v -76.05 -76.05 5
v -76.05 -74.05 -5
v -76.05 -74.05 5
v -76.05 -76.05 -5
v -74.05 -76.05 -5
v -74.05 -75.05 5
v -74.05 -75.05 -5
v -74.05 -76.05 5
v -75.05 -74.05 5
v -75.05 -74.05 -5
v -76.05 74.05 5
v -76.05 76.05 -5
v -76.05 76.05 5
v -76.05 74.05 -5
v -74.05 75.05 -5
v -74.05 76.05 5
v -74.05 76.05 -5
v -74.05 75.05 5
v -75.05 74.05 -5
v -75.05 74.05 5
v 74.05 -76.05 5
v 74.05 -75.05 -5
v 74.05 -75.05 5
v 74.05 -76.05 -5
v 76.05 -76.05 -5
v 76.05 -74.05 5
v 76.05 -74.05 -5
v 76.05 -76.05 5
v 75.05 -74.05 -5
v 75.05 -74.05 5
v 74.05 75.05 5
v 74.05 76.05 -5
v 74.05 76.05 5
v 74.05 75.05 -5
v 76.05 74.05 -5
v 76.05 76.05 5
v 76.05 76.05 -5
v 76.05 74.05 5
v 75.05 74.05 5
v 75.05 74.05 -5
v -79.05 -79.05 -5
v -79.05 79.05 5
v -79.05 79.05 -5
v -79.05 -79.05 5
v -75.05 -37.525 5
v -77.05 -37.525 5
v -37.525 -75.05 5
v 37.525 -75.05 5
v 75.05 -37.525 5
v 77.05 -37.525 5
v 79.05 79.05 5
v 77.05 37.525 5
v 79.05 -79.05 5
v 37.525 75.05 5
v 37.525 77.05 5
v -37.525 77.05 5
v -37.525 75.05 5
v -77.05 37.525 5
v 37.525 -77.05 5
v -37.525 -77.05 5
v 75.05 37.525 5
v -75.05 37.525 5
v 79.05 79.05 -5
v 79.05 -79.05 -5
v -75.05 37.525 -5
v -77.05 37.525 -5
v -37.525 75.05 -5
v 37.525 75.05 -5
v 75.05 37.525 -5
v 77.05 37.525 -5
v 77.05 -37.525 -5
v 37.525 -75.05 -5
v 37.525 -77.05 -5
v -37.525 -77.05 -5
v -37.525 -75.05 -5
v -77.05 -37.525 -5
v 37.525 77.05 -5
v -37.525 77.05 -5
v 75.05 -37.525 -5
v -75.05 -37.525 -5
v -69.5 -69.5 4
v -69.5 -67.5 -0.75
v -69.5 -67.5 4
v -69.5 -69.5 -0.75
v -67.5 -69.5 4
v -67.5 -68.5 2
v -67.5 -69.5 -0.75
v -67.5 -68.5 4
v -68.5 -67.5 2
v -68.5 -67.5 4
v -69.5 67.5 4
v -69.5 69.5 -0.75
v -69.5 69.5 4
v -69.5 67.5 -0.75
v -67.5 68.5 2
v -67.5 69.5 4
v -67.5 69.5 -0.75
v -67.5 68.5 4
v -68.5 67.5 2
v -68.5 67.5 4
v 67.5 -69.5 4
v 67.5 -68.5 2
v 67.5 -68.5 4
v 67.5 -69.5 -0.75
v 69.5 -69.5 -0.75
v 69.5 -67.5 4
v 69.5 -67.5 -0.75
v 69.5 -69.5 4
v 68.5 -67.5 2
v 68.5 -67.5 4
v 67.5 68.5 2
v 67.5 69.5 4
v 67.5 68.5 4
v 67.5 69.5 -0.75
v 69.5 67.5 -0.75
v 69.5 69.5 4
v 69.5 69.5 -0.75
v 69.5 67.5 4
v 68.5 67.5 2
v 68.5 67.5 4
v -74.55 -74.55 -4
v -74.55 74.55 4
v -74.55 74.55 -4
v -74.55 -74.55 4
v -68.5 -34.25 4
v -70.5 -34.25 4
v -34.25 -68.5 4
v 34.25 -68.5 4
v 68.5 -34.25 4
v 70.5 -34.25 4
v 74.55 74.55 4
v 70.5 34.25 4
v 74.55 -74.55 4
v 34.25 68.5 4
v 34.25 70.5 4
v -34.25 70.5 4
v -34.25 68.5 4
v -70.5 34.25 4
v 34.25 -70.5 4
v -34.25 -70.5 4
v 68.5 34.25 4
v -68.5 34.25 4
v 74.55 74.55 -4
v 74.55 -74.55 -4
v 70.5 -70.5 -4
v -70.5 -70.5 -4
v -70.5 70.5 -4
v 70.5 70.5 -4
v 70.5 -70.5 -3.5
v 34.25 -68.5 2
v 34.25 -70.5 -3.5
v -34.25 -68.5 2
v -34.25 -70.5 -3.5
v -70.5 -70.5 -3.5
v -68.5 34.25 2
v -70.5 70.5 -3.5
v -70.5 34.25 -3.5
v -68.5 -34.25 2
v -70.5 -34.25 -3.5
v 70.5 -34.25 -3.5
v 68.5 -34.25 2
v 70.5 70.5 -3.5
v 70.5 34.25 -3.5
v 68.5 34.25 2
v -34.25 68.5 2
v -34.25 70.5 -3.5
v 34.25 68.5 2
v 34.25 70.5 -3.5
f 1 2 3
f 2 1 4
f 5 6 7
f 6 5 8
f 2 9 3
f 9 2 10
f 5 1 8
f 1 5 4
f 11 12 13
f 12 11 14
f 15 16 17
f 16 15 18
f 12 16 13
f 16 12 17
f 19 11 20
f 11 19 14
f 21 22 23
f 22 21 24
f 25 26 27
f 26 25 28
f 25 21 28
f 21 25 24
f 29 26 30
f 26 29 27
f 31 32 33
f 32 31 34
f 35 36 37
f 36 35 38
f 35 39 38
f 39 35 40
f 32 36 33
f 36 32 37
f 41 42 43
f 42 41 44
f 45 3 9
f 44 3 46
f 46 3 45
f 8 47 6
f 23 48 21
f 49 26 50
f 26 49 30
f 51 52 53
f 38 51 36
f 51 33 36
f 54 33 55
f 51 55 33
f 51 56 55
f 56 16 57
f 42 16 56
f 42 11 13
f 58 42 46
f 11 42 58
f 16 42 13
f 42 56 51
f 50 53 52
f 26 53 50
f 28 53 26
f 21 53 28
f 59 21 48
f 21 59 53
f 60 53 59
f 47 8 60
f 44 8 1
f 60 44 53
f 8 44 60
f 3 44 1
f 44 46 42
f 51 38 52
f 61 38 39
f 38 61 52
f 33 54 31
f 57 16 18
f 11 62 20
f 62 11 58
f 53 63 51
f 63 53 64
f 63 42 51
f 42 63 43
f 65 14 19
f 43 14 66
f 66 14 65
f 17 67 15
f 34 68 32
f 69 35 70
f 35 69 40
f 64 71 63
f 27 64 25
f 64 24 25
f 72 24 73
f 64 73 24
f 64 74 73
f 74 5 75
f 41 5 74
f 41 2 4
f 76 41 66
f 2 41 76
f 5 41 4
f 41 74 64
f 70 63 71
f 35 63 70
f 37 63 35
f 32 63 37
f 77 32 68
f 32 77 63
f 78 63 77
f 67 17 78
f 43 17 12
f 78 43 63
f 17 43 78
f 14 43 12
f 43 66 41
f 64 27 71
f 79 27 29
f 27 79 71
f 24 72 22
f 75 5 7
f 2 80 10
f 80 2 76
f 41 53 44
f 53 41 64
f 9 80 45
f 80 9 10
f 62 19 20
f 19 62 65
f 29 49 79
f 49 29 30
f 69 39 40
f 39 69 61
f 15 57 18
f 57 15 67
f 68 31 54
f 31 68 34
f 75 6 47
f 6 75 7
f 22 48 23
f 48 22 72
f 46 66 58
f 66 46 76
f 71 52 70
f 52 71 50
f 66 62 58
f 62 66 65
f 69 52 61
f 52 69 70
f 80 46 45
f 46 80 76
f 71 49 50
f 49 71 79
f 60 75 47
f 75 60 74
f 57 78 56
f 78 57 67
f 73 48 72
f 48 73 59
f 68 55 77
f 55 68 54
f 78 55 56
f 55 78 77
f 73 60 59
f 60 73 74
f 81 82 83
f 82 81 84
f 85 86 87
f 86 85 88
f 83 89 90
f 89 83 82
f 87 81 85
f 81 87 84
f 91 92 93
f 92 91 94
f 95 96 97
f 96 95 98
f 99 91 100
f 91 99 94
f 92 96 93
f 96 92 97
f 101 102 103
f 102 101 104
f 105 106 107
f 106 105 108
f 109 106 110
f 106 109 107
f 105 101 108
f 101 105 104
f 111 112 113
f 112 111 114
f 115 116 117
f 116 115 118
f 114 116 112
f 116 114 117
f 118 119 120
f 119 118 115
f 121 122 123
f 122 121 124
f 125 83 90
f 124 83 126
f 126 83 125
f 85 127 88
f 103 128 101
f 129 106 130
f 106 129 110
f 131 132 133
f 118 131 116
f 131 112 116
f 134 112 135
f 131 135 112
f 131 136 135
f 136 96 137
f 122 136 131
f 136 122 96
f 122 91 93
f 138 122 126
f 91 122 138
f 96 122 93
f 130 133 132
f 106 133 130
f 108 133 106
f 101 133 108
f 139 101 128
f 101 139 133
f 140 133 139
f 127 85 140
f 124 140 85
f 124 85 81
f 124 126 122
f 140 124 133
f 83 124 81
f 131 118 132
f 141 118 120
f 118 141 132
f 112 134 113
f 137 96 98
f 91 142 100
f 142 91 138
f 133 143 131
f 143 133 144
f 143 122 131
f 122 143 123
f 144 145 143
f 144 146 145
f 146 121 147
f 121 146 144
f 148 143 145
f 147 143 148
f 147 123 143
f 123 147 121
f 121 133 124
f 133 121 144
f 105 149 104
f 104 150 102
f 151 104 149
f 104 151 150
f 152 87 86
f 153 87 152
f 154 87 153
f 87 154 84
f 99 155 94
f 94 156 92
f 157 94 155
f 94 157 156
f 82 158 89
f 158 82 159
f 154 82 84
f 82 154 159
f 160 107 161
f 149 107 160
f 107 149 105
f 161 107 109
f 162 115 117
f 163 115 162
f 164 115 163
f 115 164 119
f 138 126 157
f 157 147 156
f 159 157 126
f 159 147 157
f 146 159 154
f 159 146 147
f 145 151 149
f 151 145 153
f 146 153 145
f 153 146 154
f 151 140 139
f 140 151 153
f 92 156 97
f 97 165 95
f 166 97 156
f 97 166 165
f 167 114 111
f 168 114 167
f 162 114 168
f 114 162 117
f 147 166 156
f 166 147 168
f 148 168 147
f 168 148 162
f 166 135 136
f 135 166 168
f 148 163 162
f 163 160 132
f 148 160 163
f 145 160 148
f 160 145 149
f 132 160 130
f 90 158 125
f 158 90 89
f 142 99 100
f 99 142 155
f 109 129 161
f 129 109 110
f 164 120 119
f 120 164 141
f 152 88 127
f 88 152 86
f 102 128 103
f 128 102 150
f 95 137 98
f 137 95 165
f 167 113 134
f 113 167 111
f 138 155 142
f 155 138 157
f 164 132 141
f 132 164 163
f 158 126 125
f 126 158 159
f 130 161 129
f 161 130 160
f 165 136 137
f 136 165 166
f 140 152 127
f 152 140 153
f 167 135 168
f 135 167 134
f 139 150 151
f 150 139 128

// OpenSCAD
$d_pcb = 150.1;
$d_spacer = 137;
$w = 2;
$h = 10;
$h_sp = 8;
$gap = 0.5; // gap between jigs


// pcb jig
difference() {
    cube([$d_pcb+$w*4,$d_pcb+$w*4,$h],center=true);
    cube([$d_pcb,$d_pcb,$h+1],center=true);
    cube([$d_pcb+$w*2,$d_pcb/2,$h+1],center=true);
    cube([$d_pcb/2,$d_pcb+$w*2,$h+1],center=true);
    for(i=[-1,1])for(j=[-1,1])translate([$d_pcb/2*i,$d_pcb/2*j])cube([$w,$w,$h+1],center=true);
}


// spacer jig
difference() {
    cube([$d_pcb-$gap*2,$d_pcb-$gap*2,$h_sp],center=true);
    hull() {
        cube([$d_spacer,$d_spacer,$h_sp/2],center=true);
        translate([0,0,-$h_sp/2]) cube([$d_spacer+2*$w,$d_spacer+2*$w,1],center=true);
    }
    cube([$d_spacer,$d_spacer,$h+1],center=true);
    cube([$d_spacer+$w*2,$d_spacer/2,$h+1],center=true);
    cube([$d_spacer/2,$d_spacer+$w*2,$h+1],center=true);
    for(i=[-1,1])for(j=[-1,1])translate([$d_spacer/2*i,$d_spacer/2*j])cube([$w,$w,$h+1],center=true);
}
